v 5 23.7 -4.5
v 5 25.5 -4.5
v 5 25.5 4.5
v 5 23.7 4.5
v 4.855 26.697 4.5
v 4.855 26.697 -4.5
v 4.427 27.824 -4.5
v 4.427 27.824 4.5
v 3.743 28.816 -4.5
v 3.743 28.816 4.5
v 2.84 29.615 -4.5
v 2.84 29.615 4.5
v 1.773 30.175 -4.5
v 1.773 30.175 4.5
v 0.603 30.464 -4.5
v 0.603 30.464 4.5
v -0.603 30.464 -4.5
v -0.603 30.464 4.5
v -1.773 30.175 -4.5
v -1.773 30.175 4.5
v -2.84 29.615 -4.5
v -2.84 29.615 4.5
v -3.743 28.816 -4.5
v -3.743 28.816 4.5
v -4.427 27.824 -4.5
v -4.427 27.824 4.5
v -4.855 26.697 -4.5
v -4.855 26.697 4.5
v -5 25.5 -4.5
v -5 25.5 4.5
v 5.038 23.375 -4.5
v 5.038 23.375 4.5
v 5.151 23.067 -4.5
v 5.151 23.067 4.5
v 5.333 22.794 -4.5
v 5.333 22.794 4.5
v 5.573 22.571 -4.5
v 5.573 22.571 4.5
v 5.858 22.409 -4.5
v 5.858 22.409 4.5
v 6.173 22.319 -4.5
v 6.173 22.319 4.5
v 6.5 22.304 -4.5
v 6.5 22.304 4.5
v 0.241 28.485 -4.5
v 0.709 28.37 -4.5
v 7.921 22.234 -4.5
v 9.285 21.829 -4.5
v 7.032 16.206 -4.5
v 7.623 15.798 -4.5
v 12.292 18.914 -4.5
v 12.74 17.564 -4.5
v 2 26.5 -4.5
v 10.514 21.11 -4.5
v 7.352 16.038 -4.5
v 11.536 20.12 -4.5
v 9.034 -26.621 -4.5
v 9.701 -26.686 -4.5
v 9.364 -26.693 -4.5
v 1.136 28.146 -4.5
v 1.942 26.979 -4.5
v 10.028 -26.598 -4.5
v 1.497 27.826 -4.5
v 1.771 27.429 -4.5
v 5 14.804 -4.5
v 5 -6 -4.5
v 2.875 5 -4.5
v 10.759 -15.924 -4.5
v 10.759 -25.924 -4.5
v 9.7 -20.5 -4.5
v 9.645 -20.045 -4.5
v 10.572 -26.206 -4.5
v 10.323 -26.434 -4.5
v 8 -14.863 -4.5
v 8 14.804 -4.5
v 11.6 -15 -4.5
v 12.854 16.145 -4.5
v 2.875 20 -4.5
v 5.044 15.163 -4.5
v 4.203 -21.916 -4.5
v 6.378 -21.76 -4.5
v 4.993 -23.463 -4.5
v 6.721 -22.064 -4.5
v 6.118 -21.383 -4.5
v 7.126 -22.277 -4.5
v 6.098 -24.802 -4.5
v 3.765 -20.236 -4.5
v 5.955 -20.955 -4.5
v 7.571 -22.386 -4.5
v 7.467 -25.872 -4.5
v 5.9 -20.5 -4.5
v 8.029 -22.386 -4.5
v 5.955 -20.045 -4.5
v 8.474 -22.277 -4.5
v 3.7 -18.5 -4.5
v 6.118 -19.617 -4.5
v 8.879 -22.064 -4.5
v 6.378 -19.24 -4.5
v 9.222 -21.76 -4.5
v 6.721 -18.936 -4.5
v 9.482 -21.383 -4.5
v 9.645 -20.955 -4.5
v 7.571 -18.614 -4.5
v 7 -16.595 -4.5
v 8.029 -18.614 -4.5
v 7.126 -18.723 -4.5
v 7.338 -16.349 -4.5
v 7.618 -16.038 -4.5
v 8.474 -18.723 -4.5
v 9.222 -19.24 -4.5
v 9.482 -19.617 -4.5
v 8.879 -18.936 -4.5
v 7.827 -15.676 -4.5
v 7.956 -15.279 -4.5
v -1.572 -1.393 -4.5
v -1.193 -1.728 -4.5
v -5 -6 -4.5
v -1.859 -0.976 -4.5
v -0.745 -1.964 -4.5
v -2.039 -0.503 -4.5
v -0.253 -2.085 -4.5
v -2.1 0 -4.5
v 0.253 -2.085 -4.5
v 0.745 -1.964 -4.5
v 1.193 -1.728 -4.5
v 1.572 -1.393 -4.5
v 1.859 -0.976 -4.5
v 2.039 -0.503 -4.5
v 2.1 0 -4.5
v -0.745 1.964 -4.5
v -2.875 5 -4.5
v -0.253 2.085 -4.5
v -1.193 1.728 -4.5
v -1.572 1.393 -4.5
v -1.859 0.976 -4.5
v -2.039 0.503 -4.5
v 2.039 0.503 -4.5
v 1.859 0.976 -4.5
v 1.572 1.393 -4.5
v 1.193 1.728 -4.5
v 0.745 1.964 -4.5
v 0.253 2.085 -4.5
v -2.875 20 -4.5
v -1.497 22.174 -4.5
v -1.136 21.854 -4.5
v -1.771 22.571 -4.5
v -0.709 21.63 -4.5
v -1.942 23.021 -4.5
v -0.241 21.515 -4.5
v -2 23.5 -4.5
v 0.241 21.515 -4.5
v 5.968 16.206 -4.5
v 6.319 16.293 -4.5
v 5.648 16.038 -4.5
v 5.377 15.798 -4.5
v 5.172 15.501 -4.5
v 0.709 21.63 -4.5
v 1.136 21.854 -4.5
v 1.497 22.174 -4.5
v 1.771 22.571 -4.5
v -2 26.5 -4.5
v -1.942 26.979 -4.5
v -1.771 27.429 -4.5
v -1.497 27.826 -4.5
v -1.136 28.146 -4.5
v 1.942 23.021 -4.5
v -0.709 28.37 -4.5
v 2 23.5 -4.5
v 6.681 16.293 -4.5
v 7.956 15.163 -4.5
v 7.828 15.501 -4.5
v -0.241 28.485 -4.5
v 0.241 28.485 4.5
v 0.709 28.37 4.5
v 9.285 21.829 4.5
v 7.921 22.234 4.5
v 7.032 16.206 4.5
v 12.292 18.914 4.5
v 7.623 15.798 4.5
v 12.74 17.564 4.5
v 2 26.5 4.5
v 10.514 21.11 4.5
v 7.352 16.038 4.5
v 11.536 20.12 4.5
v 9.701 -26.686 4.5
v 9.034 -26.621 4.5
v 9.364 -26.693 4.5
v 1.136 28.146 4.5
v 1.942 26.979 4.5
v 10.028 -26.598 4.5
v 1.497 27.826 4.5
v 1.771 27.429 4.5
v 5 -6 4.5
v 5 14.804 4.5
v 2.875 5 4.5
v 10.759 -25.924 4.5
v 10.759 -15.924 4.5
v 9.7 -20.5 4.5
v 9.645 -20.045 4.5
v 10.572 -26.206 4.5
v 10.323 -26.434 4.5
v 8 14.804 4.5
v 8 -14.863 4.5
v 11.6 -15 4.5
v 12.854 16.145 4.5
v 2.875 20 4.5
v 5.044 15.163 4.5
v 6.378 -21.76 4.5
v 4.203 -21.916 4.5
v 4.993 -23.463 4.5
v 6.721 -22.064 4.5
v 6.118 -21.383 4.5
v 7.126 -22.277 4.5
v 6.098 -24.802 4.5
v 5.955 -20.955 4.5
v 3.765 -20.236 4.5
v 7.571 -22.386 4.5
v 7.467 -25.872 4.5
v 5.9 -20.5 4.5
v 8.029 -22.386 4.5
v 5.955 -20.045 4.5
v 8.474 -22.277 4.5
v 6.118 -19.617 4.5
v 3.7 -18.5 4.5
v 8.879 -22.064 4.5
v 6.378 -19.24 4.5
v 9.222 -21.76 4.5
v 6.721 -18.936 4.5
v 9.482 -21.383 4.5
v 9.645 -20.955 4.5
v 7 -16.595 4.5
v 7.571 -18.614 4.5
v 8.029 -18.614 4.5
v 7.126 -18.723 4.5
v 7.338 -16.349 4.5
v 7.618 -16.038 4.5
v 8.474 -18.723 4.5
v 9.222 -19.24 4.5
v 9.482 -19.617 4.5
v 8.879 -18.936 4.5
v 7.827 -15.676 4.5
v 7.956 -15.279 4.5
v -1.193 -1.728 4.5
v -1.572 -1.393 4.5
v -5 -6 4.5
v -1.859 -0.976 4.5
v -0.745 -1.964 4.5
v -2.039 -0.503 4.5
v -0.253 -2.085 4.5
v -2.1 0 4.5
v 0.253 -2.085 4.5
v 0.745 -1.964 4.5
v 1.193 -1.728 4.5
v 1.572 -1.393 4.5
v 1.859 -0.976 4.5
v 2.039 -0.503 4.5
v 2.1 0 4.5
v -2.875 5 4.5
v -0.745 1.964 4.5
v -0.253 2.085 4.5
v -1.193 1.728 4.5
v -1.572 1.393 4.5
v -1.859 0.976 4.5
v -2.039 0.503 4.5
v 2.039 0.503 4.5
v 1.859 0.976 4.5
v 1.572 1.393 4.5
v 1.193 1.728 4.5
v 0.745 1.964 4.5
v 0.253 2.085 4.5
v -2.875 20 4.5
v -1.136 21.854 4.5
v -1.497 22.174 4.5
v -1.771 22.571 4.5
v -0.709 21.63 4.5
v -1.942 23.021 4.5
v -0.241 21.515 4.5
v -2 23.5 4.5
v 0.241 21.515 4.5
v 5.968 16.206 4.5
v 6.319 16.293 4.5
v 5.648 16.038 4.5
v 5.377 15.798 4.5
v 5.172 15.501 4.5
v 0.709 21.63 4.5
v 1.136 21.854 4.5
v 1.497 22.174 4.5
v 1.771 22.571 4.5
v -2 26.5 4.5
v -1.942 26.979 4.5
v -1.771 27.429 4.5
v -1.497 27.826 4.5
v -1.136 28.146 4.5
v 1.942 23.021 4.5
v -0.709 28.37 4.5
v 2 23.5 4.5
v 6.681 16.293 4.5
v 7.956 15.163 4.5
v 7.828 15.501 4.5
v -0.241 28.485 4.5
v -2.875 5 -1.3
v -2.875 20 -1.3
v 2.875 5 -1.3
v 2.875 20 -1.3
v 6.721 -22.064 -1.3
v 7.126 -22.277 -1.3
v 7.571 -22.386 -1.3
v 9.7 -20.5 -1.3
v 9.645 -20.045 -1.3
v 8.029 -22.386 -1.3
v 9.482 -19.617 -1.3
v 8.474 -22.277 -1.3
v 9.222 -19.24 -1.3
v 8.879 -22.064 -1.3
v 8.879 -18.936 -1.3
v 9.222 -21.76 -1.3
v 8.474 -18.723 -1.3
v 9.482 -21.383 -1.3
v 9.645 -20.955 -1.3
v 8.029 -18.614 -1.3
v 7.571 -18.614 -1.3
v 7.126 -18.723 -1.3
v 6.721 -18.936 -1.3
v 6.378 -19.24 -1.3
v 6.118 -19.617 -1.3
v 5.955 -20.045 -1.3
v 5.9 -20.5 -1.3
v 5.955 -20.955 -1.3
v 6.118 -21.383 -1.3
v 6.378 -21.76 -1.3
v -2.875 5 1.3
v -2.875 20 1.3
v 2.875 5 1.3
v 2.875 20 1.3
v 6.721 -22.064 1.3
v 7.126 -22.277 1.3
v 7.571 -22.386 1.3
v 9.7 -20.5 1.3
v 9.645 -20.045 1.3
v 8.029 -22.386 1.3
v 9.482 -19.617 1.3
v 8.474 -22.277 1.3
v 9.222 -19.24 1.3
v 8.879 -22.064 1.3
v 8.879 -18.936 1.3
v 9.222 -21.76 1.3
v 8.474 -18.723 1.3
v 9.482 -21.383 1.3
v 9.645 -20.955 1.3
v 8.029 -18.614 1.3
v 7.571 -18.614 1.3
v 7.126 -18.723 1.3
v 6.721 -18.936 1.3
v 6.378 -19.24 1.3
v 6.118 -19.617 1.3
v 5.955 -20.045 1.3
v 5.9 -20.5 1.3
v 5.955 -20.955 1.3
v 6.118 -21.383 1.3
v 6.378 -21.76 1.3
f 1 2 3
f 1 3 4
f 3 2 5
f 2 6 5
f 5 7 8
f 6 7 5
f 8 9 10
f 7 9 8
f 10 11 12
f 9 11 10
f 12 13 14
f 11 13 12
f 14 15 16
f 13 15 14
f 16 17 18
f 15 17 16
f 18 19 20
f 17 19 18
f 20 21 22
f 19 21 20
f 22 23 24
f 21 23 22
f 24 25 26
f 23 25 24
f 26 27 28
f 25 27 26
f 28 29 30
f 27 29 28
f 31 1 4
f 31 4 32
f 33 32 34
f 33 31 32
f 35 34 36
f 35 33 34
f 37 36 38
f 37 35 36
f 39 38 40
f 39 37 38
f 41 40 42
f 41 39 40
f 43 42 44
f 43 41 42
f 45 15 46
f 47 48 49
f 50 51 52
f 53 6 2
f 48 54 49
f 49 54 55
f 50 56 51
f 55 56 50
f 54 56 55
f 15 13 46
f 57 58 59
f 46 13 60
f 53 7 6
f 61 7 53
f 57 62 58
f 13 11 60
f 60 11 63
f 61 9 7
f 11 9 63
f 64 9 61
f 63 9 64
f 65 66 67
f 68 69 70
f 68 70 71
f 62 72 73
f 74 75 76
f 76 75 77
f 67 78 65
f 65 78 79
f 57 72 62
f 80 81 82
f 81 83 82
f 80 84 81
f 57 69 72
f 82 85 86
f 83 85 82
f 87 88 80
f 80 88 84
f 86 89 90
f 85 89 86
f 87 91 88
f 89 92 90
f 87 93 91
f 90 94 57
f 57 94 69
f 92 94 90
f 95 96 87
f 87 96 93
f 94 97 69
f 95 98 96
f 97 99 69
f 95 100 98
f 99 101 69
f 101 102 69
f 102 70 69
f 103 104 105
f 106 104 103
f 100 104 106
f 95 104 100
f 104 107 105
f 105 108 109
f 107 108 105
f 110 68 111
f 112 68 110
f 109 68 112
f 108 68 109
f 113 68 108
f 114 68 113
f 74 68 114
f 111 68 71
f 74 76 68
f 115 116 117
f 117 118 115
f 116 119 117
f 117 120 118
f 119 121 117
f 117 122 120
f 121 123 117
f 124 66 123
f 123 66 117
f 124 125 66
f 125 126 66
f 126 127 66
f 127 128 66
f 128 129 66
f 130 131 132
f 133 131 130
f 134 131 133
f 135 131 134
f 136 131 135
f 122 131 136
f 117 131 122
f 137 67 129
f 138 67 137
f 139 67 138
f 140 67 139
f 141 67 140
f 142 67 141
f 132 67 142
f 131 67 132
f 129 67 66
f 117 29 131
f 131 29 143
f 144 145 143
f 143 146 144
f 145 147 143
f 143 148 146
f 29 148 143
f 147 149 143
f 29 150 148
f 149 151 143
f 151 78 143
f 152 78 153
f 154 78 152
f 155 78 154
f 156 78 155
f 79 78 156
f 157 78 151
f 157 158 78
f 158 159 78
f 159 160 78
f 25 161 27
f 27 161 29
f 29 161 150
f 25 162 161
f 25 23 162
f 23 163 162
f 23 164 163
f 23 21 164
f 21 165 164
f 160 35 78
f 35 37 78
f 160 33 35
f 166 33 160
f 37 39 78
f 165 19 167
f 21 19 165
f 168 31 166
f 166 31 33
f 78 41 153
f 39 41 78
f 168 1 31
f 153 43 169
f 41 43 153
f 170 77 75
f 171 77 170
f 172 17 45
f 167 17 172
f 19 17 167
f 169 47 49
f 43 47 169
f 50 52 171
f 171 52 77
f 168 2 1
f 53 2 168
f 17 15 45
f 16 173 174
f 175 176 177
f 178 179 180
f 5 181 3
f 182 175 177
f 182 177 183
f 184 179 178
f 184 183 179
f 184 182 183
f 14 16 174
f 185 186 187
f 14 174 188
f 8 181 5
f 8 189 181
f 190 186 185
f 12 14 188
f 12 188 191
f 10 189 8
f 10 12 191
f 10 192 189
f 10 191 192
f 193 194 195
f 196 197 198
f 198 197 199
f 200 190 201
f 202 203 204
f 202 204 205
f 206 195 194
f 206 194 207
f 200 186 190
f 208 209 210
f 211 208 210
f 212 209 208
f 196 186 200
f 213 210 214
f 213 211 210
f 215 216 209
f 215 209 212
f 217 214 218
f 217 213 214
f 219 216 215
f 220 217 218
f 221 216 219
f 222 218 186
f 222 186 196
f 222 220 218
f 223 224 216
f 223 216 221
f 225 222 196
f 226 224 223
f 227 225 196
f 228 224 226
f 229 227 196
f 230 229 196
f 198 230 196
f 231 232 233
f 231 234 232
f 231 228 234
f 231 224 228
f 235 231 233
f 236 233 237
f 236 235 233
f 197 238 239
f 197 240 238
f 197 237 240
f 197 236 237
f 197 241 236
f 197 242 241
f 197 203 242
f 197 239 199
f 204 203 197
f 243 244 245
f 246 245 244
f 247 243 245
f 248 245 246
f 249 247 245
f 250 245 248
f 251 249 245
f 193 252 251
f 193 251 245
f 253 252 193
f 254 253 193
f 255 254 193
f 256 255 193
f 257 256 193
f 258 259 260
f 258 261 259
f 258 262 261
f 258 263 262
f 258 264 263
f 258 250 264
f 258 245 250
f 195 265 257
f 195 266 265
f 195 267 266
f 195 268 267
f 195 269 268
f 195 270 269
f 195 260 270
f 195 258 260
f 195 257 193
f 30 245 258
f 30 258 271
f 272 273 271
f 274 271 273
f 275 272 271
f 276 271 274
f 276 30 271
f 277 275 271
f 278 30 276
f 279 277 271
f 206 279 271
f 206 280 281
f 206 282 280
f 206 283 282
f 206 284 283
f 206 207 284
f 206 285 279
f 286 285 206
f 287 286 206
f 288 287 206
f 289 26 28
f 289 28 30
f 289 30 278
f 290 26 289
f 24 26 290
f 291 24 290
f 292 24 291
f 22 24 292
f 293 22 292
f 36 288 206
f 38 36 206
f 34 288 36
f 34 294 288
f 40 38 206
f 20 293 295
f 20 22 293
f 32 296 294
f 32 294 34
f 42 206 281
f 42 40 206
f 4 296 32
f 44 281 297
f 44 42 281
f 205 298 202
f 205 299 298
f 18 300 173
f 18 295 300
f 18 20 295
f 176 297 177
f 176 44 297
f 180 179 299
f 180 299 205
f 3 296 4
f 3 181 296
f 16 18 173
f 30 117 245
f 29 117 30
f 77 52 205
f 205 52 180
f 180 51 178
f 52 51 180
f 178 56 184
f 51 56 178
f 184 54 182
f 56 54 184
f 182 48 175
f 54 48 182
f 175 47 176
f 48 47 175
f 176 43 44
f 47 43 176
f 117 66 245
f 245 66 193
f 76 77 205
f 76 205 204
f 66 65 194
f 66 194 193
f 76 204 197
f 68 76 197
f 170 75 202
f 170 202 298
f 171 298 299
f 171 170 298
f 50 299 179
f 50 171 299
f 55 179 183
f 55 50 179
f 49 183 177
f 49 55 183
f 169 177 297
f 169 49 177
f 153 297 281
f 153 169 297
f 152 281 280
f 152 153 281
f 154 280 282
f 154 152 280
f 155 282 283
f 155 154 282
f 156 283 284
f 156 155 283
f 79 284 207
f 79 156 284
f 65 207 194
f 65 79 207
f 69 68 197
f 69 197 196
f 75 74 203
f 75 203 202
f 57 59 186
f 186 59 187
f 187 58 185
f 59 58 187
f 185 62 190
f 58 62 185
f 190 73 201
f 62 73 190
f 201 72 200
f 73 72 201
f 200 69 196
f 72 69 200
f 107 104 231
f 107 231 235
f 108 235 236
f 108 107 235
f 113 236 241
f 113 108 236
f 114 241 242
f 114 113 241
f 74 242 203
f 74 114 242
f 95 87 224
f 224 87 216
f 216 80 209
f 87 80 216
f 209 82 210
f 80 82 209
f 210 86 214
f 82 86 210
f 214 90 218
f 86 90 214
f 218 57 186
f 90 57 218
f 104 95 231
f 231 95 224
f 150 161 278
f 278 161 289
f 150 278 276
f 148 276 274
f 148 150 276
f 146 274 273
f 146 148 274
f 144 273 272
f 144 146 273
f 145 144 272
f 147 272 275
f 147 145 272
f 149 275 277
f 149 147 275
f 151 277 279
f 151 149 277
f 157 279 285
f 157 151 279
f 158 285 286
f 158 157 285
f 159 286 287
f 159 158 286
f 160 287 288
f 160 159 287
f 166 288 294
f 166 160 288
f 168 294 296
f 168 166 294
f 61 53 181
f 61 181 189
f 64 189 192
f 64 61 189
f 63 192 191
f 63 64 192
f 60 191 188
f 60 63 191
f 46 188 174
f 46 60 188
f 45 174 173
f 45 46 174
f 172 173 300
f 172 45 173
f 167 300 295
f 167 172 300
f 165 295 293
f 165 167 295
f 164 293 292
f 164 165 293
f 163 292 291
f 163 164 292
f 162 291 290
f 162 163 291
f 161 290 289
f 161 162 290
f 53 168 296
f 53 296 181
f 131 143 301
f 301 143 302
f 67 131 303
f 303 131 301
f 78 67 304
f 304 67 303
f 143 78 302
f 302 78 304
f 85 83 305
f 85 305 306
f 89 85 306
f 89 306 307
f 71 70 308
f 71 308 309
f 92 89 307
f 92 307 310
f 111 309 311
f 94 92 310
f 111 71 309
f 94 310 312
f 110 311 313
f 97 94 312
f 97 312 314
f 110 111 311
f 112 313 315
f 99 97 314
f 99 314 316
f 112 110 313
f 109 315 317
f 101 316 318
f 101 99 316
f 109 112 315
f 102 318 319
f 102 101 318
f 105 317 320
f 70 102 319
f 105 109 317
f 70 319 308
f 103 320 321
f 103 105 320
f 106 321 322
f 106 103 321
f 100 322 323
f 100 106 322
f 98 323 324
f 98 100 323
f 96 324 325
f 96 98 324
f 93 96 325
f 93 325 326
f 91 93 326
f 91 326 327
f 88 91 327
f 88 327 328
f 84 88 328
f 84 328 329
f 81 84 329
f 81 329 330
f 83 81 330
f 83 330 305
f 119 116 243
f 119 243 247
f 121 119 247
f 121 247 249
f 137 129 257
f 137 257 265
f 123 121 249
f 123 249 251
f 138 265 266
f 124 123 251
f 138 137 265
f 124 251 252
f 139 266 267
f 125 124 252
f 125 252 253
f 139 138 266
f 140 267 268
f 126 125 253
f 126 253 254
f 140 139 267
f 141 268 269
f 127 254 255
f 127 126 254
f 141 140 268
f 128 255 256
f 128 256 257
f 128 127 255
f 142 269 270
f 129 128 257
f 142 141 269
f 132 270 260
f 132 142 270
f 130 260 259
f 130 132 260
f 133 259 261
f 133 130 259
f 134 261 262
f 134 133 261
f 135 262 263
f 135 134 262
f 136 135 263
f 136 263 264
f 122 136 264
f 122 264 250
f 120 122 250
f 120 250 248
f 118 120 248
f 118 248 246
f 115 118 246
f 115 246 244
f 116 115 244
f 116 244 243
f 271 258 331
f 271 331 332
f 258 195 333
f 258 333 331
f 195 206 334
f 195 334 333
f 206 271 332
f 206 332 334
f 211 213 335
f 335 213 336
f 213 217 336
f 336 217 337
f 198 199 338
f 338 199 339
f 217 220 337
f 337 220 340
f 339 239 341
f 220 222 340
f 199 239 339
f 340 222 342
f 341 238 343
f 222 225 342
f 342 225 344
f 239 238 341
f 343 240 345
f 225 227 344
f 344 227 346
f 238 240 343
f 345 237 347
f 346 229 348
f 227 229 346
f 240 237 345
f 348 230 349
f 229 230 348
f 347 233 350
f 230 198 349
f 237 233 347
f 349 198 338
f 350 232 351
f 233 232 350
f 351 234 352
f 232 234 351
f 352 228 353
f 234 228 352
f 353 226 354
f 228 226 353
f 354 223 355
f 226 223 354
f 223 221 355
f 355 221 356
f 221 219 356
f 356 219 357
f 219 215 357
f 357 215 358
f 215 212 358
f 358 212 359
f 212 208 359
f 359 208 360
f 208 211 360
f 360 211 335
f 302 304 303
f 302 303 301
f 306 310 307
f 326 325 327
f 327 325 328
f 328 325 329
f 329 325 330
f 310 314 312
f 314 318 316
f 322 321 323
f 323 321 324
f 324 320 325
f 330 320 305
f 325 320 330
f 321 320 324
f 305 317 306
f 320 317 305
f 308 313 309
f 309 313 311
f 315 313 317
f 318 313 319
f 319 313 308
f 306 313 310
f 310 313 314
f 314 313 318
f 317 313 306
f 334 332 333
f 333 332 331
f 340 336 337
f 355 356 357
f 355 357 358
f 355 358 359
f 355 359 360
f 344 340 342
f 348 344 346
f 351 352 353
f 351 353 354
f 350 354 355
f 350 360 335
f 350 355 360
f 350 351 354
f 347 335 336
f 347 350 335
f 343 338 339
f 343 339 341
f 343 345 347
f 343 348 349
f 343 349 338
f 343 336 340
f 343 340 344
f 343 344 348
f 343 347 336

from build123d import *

# Parameters (mm, degrees)
SKETCH_R     = 2.1
PAD_DEPTH    = 4.5
SKETCH001_R  = 1.9
SKETCH001_W  = 5.75
SKETCH001_H  = 15
POCKET_DEPTH = 3.2


with BuildPart() as part:
    # Sketch → Pad (new body, symmetric)
    with BuildSketch(Plane.XY):
        with BuildLine():
            Line((-5, -6), (5, -6))
            Line((5, 14.803576), (5, -6))
            ThreePointArc((8, 14.803576), (6.5, 16.303576), (5, 14.803576))
            Line((8, -14.862693), (8, 14.803576))
            ThreePointArc((7, -16.594744), (7.732051, -15.862693), (8, -14.862693))
            Line((7, -16.594744), (3.7, -18.5))
            ThreePointArc((3.7, -18.5), (4.993034, -23.462837), (9.034008, -26.620718))
            ThreePointArc((9.034008, -26.620718), (10.027512, -26.597535), (10.758643, -25.924455))
            Line((10.758643, -15.924455), (10.758643, -25.924455))
            Line((11.6, -15), (10.758643, -15.924455))
            Line((12.854013, 16.145071), (11.6, -15))
            ThreePointArc((12.854013, 16.145071), (11.054451, 20.645496), (6.5, 22.303576))
            ThreePointArc((5, 23.7), (5.446061, 22.675305), (6.5, 22.303576))
            Line((5, 25.5), (5, 23.7))
            ThreePointArc((5, 25.5), (0, 30.5), (-5, 25.5))
            Line((-5, -6), (-5, 25.5))
        make_face()
        Circle(SKETCH_R, mode=Mode.SUBTRACT)
        with BuildLine():
            ThreePointArc((-2, 23.5), (0, 21.5), (2, 23.5))
            Line((2, 23.5), (2, 26.5))
            ThreePointArc((2, 26.5), (0, 28.5), (-2, 26.5))
            Line((-2, 23.5), (-2, 26.5))
        make_face(mode=Mode.SUBTRACT)
    extrude(amount=PAD_DEPTH, both=True)

    # Sketch001 (on Face23 of Pad) → Pocket (cut)
    with BuildSketch(Plane.XY.offset(4.5)):
        with Locations((7.8, -20.5)):
            Circle(SKETCH001_R)
        with Locations((0, 12.5)):
            Rectangle(SKETCH001_W, SKETCH001_H)
    pocket = extrude(amount=-POCKET_DEPTH, mode=Mode.SUBTRACT)

    # Mirrored: Pocket across XY
    add(pocket.mirror(Plane.XY), mode=Mode.SUBTRACT)


solid = part.part
